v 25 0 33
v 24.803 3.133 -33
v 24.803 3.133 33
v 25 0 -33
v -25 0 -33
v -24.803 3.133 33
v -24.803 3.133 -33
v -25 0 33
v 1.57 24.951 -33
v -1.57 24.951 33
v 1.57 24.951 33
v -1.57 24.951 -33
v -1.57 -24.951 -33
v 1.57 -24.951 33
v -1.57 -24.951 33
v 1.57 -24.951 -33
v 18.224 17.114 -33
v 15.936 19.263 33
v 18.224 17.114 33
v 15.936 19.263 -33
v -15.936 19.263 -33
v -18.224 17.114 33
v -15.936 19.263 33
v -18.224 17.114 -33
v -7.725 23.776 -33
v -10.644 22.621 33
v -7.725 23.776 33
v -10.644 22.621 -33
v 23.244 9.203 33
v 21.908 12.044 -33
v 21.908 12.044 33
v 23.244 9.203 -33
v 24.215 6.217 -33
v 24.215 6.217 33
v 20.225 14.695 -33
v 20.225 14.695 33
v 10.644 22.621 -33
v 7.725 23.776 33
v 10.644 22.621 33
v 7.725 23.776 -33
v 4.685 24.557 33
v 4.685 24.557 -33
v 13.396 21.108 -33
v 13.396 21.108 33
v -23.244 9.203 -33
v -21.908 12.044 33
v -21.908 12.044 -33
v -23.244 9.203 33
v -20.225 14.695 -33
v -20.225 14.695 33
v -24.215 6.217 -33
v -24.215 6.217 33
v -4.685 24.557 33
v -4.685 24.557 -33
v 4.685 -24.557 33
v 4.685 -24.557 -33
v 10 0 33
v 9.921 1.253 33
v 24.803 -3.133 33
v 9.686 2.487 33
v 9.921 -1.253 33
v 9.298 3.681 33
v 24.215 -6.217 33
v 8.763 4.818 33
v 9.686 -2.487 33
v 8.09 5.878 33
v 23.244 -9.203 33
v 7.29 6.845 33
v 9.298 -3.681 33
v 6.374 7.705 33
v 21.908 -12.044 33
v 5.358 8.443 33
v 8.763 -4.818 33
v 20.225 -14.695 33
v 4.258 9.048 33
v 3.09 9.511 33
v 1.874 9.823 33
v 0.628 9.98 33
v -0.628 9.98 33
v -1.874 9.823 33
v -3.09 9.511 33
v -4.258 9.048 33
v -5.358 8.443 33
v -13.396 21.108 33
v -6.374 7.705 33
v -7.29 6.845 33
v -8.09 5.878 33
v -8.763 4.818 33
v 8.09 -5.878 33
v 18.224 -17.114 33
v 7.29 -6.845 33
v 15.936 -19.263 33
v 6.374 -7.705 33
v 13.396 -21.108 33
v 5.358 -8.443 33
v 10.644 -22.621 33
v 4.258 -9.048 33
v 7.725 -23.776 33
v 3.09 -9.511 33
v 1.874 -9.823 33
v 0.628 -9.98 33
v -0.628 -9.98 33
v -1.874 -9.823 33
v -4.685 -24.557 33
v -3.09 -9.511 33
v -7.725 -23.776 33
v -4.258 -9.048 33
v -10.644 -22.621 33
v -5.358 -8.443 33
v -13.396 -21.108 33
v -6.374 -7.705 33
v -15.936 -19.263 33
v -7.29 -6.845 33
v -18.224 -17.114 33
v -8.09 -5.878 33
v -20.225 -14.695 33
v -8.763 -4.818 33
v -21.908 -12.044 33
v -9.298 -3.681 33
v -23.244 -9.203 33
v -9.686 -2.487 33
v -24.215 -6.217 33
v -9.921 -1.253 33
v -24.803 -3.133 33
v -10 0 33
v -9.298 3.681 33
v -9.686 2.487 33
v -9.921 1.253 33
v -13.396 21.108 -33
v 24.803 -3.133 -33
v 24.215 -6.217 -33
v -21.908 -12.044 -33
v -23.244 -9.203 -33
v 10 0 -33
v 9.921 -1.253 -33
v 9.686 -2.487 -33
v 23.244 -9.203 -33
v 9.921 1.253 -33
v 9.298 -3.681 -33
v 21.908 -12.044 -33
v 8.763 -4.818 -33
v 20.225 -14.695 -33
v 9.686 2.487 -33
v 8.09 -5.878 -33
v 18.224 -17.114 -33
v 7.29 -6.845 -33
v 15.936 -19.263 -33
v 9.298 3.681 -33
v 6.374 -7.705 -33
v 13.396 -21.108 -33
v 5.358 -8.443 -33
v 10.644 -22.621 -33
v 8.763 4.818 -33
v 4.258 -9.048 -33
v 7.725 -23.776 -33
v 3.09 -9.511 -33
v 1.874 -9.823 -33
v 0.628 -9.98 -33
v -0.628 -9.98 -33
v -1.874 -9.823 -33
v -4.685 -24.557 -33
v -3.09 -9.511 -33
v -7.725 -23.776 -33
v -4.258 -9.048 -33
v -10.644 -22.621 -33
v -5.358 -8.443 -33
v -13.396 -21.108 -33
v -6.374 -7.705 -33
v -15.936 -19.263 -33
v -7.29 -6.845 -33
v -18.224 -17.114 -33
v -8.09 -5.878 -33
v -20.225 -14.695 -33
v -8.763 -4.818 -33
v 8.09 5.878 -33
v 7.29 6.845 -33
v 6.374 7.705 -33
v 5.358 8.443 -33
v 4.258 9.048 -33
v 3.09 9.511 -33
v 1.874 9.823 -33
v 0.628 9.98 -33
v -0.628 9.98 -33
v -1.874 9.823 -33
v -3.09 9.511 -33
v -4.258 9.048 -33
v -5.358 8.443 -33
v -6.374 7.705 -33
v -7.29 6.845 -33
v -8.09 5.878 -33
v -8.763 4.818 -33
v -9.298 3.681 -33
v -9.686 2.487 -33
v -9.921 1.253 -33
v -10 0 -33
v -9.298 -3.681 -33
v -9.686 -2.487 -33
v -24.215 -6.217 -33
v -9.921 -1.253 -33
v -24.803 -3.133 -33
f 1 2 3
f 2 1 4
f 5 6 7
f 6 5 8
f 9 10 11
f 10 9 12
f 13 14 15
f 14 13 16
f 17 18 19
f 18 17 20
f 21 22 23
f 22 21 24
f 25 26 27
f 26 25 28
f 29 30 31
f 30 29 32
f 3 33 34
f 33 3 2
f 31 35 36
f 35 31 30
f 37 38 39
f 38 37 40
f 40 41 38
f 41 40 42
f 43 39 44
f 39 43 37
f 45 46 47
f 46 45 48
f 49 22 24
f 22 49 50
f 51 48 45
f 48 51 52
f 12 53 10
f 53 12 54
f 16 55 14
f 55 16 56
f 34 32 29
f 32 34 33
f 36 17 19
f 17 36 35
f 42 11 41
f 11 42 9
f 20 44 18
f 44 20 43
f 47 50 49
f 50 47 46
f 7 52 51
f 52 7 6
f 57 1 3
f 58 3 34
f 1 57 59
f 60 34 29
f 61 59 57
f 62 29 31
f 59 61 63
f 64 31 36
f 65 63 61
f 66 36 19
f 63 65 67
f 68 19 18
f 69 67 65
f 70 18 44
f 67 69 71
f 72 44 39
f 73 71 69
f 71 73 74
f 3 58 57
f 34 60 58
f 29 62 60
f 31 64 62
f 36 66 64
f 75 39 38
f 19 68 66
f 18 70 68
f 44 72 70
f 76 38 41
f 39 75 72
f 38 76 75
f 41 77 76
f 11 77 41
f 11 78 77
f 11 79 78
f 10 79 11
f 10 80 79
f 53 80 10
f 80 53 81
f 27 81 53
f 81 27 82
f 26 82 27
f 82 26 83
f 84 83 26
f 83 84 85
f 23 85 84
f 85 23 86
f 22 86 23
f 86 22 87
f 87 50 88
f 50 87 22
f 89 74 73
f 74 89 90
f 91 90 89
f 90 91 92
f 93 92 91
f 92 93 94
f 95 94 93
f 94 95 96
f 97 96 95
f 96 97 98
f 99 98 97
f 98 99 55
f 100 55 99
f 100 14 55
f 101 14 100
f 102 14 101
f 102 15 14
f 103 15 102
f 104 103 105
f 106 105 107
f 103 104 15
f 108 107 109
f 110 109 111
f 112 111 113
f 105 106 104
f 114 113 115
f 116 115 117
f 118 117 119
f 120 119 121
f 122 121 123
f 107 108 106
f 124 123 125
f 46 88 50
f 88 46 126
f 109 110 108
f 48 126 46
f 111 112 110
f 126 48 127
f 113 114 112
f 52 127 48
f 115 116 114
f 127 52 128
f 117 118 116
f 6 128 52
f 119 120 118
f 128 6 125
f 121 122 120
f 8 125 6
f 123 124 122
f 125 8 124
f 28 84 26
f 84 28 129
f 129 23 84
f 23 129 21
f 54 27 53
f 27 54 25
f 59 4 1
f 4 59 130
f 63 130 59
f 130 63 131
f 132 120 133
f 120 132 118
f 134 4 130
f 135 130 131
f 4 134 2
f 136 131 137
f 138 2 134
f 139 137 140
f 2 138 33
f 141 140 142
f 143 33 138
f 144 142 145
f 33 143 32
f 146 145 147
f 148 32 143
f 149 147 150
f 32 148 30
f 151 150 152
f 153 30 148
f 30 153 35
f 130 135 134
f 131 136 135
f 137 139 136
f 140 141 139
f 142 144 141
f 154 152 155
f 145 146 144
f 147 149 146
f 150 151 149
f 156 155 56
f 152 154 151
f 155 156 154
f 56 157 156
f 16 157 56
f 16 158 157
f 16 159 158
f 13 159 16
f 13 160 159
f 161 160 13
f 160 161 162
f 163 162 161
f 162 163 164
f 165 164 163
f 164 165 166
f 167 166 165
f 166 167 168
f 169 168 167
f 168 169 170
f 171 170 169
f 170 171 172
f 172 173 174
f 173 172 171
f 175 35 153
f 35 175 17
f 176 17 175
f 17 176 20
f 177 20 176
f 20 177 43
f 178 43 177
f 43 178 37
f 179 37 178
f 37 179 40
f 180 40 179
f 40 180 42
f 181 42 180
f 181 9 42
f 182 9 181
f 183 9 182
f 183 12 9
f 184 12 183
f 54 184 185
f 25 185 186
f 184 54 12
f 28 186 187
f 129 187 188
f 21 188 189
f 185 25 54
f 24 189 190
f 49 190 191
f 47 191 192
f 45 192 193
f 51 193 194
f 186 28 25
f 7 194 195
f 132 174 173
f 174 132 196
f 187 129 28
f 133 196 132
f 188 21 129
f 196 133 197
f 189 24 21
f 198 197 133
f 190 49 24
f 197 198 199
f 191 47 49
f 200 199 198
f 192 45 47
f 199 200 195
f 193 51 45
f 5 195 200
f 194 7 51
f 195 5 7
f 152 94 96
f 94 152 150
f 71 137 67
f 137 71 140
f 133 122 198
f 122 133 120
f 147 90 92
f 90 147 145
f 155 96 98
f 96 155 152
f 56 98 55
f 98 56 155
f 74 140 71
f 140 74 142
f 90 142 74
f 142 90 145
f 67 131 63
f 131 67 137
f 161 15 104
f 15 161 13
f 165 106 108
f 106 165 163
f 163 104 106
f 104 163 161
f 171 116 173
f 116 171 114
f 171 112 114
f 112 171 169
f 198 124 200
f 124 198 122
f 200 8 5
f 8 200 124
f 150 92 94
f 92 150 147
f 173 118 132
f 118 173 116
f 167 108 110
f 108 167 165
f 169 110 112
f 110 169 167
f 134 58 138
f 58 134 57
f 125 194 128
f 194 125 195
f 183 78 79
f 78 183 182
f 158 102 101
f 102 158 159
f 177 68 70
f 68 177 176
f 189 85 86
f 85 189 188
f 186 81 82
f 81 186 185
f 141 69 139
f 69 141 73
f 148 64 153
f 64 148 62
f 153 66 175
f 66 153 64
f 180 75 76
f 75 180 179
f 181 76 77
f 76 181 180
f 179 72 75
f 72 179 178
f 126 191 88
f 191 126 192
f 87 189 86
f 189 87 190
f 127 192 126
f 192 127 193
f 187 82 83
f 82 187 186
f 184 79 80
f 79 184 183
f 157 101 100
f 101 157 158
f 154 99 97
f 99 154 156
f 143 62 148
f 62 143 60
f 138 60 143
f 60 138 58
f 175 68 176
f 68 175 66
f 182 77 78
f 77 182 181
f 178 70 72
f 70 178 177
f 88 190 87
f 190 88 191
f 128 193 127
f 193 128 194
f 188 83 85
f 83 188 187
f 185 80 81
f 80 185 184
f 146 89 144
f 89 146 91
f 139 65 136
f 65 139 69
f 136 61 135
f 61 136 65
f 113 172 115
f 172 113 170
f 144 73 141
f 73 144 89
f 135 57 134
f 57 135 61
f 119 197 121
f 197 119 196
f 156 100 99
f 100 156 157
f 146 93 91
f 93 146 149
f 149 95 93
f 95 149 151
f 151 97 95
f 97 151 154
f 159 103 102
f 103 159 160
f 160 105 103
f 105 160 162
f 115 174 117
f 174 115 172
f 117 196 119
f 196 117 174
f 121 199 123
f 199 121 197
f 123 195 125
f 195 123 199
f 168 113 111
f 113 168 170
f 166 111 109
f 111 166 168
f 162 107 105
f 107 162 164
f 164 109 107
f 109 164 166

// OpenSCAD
$fn = 50;


difference() {
	union() {
		translate(v = [0, 0, -33.0000000000]) {
			cylinder(h = 66, r = 25.0000000000);
		}
	}
	union() {
		translate(v = [0, 0, -100.0000000000]) {
			cylinder(h = 200, r = 10);
		}
	}
}
